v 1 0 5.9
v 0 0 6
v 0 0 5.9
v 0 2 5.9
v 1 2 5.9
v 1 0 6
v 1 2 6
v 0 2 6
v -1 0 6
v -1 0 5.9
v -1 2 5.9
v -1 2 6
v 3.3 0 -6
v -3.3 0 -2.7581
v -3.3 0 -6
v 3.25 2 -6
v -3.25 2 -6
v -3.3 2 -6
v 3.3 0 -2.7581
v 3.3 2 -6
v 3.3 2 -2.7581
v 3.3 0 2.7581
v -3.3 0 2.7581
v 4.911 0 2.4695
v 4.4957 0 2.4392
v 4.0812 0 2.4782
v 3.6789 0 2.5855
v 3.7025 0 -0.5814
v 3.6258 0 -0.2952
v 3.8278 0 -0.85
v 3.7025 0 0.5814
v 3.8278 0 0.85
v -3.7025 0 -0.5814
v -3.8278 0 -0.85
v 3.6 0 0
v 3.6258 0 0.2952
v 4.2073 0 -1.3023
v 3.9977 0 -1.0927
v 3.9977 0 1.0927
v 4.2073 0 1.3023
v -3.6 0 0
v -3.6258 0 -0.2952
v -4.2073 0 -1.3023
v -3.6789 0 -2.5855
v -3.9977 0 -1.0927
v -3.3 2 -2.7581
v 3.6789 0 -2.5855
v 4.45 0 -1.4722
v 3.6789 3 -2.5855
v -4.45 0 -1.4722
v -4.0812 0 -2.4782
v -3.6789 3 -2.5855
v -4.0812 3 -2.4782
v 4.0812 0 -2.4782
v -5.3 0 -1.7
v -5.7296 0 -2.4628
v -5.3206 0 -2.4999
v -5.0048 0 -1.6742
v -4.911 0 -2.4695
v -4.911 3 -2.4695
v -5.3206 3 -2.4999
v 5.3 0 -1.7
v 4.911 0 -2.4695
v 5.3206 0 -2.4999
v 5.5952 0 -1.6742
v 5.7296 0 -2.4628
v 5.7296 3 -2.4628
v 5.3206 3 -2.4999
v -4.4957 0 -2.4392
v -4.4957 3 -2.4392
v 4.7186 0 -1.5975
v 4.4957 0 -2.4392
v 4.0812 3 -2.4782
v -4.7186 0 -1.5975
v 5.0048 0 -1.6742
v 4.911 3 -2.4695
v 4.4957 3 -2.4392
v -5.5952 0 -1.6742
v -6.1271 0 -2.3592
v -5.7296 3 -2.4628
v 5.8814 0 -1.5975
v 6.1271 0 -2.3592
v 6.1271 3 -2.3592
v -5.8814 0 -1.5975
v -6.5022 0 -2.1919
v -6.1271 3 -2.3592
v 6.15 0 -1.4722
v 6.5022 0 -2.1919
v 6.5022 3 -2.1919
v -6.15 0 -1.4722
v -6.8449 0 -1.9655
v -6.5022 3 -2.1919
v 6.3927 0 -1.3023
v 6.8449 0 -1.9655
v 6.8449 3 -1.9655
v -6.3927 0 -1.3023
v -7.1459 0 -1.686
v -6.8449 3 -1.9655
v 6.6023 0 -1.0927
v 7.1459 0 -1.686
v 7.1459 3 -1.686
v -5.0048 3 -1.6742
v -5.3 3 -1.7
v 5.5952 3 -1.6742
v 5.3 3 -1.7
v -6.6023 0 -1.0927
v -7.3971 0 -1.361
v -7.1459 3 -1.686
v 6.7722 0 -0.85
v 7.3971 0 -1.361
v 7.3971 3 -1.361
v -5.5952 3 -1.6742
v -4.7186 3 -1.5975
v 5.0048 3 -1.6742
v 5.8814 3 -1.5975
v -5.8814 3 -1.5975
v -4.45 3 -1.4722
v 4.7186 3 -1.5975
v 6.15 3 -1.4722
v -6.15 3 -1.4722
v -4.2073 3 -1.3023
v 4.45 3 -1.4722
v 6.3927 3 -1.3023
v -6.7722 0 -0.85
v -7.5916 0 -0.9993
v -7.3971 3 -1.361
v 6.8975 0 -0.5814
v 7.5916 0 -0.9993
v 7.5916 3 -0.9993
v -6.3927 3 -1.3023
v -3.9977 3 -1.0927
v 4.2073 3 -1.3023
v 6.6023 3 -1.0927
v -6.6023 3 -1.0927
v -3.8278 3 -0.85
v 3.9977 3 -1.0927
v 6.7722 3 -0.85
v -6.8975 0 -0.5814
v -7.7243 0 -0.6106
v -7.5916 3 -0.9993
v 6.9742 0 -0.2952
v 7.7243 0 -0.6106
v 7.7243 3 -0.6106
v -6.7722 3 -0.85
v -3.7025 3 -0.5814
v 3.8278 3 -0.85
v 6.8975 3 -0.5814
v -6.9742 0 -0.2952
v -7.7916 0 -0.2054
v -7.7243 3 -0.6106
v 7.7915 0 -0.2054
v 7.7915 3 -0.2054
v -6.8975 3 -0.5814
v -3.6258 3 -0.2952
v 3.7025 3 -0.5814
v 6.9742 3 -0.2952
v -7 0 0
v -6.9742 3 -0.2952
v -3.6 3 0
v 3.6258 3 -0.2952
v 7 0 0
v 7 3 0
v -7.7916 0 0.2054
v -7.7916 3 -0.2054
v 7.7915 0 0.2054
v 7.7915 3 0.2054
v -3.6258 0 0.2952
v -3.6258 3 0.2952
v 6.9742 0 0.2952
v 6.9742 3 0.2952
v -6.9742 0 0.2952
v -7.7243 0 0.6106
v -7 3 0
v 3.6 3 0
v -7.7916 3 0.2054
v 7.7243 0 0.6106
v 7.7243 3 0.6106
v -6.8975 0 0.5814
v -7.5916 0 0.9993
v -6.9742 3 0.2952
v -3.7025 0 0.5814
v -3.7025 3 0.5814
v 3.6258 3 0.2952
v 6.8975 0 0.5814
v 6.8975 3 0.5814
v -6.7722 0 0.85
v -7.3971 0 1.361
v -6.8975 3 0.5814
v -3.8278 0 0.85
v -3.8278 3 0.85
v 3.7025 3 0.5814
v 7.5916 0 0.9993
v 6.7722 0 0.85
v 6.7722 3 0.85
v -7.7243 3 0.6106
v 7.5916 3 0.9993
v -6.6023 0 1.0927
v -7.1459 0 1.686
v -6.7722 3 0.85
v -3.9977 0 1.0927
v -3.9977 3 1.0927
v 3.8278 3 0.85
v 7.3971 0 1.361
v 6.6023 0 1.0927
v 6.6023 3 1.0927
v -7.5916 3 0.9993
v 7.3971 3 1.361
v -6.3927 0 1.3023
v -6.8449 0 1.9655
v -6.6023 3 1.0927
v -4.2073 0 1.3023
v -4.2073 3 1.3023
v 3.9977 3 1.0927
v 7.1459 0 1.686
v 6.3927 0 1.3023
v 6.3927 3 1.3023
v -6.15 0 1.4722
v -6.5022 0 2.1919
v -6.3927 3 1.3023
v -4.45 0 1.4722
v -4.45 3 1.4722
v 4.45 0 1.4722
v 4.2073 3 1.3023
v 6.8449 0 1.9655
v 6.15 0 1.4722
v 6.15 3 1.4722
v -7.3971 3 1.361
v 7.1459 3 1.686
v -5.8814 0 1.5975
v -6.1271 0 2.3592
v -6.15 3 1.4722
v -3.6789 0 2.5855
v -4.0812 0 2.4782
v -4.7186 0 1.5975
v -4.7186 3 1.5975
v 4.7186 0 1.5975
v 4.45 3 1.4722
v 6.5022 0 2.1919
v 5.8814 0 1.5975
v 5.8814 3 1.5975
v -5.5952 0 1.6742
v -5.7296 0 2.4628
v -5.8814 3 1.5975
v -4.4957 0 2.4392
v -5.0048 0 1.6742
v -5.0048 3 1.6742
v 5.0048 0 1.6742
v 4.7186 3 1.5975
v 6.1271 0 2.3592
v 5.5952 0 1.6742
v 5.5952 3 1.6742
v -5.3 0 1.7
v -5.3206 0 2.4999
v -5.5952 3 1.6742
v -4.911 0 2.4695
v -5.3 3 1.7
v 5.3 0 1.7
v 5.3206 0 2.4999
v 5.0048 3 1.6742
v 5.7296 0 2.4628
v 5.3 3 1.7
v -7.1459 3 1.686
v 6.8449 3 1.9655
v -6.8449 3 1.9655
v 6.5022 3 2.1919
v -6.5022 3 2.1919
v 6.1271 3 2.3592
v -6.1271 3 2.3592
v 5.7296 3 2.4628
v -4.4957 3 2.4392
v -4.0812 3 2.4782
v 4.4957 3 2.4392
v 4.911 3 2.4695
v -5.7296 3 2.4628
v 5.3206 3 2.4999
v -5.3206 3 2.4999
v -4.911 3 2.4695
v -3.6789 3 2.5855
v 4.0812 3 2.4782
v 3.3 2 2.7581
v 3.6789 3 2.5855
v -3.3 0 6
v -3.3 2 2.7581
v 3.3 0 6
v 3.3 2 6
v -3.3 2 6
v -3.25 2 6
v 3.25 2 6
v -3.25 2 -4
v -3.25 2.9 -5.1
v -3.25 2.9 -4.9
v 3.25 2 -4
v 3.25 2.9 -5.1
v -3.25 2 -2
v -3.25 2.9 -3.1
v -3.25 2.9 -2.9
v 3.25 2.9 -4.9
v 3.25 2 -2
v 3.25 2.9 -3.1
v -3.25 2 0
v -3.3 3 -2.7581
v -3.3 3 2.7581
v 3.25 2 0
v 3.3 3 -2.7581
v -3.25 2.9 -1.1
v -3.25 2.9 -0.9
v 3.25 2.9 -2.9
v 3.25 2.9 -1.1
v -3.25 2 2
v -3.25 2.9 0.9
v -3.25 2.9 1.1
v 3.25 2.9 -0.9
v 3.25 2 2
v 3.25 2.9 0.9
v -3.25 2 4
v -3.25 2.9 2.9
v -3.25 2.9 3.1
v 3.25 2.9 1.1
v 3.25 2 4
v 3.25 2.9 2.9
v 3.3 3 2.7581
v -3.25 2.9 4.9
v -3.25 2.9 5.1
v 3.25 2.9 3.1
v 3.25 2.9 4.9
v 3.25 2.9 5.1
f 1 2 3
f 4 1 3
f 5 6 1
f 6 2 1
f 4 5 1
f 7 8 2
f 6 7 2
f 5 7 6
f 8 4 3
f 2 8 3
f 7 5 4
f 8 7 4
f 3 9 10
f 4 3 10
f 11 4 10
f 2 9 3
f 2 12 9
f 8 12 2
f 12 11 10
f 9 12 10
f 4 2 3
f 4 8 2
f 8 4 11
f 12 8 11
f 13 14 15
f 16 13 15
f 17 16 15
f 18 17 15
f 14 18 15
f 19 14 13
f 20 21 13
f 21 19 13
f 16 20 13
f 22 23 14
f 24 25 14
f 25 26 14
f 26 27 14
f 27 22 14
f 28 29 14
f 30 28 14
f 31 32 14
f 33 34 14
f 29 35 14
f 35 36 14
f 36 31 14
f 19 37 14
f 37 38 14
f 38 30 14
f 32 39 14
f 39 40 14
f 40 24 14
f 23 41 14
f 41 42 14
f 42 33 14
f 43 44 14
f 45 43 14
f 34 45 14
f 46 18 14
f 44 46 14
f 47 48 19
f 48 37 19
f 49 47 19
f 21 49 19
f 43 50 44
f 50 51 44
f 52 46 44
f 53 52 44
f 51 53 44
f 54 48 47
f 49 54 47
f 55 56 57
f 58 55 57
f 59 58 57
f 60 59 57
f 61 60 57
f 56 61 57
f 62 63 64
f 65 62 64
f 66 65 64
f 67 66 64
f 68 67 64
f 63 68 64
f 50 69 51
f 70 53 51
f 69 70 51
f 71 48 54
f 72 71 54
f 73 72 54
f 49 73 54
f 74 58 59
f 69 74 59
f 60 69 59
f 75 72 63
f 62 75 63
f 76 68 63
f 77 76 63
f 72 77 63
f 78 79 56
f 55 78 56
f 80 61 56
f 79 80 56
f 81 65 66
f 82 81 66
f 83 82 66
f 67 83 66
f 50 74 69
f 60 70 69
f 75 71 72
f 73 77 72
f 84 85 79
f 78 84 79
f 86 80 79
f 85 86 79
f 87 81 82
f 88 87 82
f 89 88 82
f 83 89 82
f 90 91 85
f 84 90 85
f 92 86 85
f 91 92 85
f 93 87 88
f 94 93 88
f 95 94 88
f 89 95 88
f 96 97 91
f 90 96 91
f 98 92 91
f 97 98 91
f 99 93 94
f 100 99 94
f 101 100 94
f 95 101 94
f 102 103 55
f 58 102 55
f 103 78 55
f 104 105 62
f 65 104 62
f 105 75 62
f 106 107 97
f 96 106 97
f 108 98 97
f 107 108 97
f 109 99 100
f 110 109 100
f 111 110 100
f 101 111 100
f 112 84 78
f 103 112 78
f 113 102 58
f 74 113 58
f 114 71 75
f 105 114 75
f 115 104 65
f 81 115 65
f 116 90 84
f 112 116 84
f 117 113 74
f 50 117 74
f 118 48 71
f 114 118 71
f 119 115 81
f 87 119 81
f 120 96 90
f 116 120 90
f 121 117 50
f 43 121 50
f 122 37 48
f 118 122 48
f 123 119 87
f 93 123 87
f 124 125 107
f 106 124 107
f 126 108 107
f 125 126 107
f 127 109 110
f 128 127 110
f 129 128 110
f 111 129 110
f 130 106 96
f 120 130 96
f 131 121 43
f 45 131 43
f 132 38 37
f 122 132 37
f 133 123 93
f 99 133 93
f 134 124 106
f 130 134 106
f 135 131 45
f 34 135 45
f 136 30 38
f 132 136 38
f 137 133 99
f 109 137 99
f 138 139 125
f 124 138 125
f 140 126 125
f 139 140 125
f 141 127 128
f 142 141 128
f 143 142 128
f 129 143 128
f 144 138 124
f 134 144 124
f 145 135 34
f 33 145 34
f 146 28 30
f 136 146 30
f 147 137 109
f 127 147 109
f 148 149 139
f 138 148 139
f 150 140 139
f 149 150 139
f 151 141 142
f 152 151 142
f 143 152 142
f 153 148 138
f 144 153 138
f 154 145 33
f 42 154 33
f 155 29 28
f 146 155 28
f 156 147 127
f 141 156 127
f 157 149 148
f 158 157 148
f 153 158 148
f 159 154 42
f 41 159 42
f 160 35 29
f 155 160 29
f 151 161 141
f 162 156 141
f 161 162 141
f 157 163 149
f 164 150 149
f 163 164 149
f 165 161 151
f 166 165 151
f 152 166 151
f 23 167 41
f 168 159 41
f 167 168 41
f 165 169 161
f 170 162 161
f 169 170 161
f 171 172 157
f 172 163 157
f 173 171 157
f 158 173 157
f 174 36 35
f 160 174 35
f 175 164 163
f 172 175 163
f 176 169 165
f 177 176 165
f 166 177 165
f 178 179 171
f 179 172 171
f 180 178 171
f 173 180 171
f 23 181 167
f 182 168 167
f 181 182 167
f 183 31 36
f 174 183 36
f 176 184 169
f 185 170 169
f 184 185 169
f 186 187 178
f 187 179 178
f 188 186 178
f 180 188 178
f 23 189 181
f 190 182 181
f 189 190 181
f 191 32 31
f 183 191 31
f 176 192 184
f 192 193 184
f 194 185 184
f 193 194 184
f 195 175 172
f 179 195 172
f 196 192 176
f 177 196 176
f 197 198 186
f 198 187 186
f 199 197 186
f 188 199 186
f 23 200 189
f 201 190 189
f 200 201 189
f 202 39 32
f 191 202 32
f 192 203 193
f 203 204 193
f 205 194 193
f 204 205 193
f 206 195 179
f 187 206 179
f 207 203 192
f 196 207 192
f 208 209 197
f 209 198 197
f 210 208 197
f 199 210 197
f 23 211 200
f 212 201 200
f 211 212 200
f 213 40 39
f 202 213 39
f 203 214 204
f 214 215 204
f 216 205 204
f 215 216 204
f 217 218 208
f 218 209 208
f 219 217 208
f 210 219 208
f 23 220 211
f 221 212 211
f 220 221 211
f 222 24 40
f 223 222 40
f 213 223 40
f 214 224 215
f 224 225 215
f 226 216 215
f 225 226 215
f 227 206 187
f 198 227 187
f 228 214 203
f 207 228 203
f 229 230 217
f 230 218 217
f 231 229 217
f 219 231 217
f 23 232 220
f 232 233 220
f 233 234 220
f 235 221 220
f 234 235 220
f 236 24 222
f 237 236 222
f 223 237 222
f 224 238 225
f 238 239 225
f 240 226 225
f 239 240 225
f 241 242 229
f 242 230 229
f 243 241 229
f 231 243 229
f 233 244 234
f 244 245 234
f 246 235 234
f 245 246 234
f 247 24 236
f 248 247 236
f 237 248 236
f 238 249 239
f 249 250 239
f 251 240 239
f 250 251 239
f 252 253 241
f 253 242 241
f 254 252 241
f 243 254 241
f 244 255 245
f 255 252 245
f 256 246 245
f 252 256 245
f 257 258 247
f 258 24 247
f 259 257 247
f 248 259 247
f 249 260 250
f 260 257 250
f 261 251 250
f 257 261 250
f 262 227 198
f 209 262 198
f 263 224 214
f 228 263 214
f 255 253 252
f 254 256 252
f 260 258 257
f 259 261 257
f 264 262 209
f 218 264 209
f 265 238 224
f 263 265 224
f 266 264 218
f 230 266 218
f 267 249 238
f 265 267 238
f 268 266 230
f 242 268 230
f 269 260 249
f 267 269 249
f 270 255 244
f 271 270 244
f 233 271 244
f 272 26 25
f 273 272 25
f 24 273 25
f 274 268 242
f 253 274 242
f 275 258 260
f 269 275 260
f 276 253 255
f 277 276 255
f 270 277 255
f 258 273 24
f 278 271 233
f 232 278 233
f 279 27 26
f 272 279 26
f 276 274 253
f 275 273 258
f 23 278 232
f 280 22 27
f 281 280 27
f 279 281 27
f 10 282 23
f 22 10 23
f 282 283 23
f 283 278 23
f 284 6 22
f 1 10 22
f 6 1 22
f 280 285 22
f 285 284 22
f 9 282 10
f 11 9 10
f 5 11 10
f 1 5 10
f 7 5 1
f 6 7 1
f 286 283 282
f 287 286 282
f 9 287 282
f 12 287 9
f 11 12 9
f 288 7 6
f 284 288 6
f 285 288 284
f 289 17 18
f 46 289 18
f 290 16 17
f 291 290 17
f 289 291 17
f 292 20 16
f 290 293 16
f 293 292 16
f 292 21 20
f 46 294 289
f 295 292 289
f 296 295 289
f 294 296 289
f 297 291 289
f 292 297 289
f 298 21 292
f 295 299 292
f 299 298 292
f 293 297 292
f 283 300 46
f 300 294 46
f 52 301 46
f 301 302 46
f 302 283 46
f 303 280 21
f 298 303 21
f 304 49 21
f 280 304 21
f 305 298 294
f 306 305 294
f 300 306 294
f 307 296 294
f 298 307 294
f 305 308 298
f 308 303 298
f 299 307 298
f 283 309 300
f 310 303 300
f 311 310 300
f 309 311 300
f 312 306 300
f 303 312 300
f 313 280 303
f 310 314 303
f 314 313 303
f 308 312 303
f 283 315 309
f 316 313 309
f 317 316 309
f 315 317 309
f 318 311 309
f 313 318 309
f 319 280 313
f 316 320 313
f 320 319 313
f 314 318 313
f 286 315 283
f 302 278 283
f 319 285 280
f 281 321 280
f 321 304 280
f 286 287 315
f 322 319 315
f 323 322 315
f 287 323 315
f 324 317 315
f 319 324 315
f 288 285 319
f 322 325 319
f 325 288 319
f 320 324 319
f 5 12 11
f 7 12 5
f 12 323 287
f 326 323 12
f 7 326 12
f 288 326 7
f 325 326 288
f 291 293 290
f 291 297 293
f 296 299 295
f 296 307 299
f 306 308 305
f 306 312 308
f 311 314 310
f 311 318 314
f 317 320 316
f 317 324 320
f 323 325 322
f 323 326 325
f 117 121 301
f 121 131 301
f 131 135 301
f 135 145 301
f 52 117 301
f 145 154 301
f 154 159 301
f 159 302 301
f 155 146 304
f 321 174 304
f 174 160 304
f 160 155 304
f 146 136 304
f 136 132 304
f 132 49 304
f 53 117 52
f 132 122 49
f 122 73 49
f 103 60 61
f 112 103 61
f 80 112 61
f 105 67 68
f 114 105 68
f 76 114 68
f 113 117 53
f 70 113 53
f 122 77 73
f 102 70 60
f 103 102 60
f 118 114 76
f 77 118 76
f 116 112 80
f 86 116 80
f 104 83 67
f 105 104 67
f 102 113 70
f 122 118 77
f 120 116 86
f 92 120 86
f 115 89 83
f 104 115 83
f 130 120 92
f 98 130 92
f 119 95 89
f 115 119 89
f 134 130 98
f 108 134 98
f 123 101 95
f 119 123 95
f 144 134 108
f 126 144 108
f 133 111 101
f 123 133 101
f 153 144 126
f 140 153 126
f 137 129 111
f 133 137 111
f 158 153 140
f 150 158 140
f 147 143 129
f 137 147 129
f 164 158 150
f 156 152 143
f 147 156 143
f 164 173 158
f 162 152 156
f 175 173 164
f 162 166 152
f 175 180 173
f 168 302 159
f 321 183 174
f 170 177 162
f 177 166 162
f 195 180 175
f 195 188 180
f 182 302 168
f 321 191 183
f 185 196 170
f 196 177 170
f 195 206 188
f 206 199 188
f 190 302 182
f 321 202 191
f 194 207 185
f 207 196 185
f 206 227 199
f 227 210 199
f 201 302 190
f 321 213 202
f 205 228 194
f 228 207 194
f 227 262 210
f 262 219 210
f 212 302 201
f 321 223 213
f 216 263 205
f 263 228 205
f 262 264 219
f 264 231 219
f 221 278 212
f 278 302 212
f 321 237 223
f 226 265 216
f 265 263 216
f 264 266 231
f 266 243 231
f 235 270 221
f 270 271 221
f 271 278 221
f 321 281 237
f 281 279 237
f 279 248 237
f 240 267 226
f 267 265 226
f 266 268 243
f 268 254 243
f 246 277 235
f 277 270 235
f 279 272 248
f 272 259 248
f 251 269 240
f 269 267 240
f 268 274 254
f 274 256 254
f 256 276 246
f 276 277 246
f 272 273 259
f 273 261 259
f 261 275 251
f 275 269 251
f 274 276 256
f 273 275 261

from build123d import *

# Parameters (mm, degrees)
CROQUIS1_R              = 1.7
SALIENTE_EXTRUIR1_DEPTH = 2
SALIENTE_EXTRUIR2_DEPTH = 6.5
MATRIZL1_COUNT          = 6
MATRIZL1_PITCH          = 2
SKETCH1_W               = 2
SKETCH1_H               = 2
CUT_EXTRUDE1_DEPTH      = 0.1
SKETCH1_3_W             = 1
SKETCH1_3_H             = 2
BOSS_EXTRUDE1_DEPTH     = 0.1
SKETCH1_4_W             = 1
SKETCH1_4_H             = 2
BOSS_EXTRUDE2_DEPTH     = 0.1
BOSS_EXTRUDE3_START     = 2
CROQUIS1_4_R            = 1.7
BOSS_EXTRUDE3_DEPTH     = 1


with BuildPart() as part:
    # Croquis1 → Saliente-Extruir1 (new body)
    with BuildSketch(Plane(origin=(0, 0, 0), x_dir=(1, 0, 0), z_dir=(0, 1, 0))):
        Polygon((-3.3, -2.758060528), (-3.3, 2.758060528), (-3.3, 6), (3.3, 6), (3.3, 2.758060528), (3.3, -2.758060528), (3.3, -6), (-3.3, -6), align=None)
        with BuildLine():
            Line((3.3, -2.758060528), (3.3, 2.758060528))
            ThreePointArc((3.3, 2.758060528), (4.081204524, 2.478243977), (4.910964812, 2.469544821))
            ThreePointArc((4.910964812, 2.469544821), (7.8, 0), (4.910964812, -2.469544821))
            ThreePointArc((4.910964812, -2.469544821), (4.081204524, -2.478243977), (3.3, -2.758060528))
        make_face()
        with Locations((5.3, 0)):
            Circle(CROQUIS1_R, mode=Mode.SUBTRACT)
        with BuildLine():
            ThreePointArc((-4.910964812, -2.469544821), (-7.8, 0), (-4.910964812, 2.469544821))
            ThreePointArc((-4.910964812, 2.469544821), (-4.081204524, 2.478243977), (-3.3, 2.758060528))
            Line((-3.3, 2.758060528), (-3.3, -2.758060528))
            ThreePointArc((-3.3, -2.758060528), (-4.081204524, -2.478243977), (-4.910964812, -2.469544821))
        make_face()
        with Locations((-5.3, 0)):
            Circle(CROQUIS1_R, mode=Mode.SUBTRACT)
    extrude(amount=SALIENTE_EXTRUIR1_DEPTH)

    # Croquis4 → Saliente-Extruir2 (add)
    with BuildSketch(Plane(origin=(3.25, 0, 0), x_dir=(0, 0, -1), z_dir=(1, 0, 0))):
        Polygon((-6, 2), (-4, 2), (-4.9, 2.9), (-5.1, 2.9), align=None)
    saliente_extruir2 = extrude(amount=-SALIENTE_EXTRUIR2_DEPTH)

    # MatrizL1: Saliente-Extruir2 ×6
    with Locations(*[(0, 0, -i * MATRIZL1_PITCH) for i in range(1, MATRIZL1_COUNT)]):
        add(saliente_extruir2)

    # Sketch1 → Cut-Extrude1 (cut)
    with BuildSketch(Plane.XY.offset(6)):
        with Locations((0, 1)):
            Rectangle(SKETCH1_W, SKETCH1_H)
    extrude(amount=-CUT_EXTRUDE1_DEPTH, mode=Mode.SUBTRACT)

    # Croquis1<4> → Boss-Extrude3 (add)
    with BuildSketch(Plane(origin=(0, 0, 0), x_dir=(1, 0, 0), z_dir=(0, 1, 0)).offset(BOSS_EXTRUDE3_START)):
        with BuildLine():
            ThreePointArc((-4.910964812, -2.469544821), (-7.8, 0), (-4.910964812, 2.469544821))
            ThreePointArc((-4.910964812, 2.469544821), (-4.081204524, 2.478243977), (-3.3, 2.758060528))
            Line((-3.3, 2.758060528), (-3.3, -2.758060528))
            ThreePointArc((-3.3, -2.758060528), (-4.081204524, -2.478243977), (-4.910964812, -2.469544821))
        make_face()
        with Locations((-5.3, 0)):
            Circle(CROQUIS1_4_R, mode=Mode.SUBTRACT)
        with BuildLine():
            Line((3.3, -2.758060528), (3.3, 2.758060528))
            ThreePointArc((3.3, 2.758060528), (4.081204524, 2.478243977), (4.910964812, 2.469544821))
            ThreePointArc((4.910964812, 2.469544821), (7.8, 0), (4.910964812, -2.469544821))
            ThreePointArc((4.910964812, -2.469544821), (4.081204524, -2.478243977), (3.3, -2.758060528))
        make_face()
        with Locations((5.3, 0)):
            Circle(CROQUIS1_4_R, mode=Mode.SUBTRACT)
    extrude(amount=BOSS_EXTRUDE3_DEPTH)


with BuildPart() as body_2:
    # Sketch1<3> → Boss-Extrude1 (new body)
    with BuildSketch(Plane.XY.offset(6)):
        with Locations((0.5, 1)):
            Rectangle(SKETCH1_3_W, SKETCH1_3_H)
    extrude(amount=-BOSS_EXTRUDE1_DEPTH)


with BuildPart() as body_3:
    # Sketch1<4> → Boss-Extrude2 (new body)
    with BuildSketch(Plane.XY.offset(6)):
        with Locations((-0.5, 1)):
            Rectangle(SKETCH1_4_W, SKETCH1_4_H)
    extrude(amount=-BOSS_EXTRUDE2_DEPTH)


solid = Compound([part.part, body_2.part, body_3.part])
